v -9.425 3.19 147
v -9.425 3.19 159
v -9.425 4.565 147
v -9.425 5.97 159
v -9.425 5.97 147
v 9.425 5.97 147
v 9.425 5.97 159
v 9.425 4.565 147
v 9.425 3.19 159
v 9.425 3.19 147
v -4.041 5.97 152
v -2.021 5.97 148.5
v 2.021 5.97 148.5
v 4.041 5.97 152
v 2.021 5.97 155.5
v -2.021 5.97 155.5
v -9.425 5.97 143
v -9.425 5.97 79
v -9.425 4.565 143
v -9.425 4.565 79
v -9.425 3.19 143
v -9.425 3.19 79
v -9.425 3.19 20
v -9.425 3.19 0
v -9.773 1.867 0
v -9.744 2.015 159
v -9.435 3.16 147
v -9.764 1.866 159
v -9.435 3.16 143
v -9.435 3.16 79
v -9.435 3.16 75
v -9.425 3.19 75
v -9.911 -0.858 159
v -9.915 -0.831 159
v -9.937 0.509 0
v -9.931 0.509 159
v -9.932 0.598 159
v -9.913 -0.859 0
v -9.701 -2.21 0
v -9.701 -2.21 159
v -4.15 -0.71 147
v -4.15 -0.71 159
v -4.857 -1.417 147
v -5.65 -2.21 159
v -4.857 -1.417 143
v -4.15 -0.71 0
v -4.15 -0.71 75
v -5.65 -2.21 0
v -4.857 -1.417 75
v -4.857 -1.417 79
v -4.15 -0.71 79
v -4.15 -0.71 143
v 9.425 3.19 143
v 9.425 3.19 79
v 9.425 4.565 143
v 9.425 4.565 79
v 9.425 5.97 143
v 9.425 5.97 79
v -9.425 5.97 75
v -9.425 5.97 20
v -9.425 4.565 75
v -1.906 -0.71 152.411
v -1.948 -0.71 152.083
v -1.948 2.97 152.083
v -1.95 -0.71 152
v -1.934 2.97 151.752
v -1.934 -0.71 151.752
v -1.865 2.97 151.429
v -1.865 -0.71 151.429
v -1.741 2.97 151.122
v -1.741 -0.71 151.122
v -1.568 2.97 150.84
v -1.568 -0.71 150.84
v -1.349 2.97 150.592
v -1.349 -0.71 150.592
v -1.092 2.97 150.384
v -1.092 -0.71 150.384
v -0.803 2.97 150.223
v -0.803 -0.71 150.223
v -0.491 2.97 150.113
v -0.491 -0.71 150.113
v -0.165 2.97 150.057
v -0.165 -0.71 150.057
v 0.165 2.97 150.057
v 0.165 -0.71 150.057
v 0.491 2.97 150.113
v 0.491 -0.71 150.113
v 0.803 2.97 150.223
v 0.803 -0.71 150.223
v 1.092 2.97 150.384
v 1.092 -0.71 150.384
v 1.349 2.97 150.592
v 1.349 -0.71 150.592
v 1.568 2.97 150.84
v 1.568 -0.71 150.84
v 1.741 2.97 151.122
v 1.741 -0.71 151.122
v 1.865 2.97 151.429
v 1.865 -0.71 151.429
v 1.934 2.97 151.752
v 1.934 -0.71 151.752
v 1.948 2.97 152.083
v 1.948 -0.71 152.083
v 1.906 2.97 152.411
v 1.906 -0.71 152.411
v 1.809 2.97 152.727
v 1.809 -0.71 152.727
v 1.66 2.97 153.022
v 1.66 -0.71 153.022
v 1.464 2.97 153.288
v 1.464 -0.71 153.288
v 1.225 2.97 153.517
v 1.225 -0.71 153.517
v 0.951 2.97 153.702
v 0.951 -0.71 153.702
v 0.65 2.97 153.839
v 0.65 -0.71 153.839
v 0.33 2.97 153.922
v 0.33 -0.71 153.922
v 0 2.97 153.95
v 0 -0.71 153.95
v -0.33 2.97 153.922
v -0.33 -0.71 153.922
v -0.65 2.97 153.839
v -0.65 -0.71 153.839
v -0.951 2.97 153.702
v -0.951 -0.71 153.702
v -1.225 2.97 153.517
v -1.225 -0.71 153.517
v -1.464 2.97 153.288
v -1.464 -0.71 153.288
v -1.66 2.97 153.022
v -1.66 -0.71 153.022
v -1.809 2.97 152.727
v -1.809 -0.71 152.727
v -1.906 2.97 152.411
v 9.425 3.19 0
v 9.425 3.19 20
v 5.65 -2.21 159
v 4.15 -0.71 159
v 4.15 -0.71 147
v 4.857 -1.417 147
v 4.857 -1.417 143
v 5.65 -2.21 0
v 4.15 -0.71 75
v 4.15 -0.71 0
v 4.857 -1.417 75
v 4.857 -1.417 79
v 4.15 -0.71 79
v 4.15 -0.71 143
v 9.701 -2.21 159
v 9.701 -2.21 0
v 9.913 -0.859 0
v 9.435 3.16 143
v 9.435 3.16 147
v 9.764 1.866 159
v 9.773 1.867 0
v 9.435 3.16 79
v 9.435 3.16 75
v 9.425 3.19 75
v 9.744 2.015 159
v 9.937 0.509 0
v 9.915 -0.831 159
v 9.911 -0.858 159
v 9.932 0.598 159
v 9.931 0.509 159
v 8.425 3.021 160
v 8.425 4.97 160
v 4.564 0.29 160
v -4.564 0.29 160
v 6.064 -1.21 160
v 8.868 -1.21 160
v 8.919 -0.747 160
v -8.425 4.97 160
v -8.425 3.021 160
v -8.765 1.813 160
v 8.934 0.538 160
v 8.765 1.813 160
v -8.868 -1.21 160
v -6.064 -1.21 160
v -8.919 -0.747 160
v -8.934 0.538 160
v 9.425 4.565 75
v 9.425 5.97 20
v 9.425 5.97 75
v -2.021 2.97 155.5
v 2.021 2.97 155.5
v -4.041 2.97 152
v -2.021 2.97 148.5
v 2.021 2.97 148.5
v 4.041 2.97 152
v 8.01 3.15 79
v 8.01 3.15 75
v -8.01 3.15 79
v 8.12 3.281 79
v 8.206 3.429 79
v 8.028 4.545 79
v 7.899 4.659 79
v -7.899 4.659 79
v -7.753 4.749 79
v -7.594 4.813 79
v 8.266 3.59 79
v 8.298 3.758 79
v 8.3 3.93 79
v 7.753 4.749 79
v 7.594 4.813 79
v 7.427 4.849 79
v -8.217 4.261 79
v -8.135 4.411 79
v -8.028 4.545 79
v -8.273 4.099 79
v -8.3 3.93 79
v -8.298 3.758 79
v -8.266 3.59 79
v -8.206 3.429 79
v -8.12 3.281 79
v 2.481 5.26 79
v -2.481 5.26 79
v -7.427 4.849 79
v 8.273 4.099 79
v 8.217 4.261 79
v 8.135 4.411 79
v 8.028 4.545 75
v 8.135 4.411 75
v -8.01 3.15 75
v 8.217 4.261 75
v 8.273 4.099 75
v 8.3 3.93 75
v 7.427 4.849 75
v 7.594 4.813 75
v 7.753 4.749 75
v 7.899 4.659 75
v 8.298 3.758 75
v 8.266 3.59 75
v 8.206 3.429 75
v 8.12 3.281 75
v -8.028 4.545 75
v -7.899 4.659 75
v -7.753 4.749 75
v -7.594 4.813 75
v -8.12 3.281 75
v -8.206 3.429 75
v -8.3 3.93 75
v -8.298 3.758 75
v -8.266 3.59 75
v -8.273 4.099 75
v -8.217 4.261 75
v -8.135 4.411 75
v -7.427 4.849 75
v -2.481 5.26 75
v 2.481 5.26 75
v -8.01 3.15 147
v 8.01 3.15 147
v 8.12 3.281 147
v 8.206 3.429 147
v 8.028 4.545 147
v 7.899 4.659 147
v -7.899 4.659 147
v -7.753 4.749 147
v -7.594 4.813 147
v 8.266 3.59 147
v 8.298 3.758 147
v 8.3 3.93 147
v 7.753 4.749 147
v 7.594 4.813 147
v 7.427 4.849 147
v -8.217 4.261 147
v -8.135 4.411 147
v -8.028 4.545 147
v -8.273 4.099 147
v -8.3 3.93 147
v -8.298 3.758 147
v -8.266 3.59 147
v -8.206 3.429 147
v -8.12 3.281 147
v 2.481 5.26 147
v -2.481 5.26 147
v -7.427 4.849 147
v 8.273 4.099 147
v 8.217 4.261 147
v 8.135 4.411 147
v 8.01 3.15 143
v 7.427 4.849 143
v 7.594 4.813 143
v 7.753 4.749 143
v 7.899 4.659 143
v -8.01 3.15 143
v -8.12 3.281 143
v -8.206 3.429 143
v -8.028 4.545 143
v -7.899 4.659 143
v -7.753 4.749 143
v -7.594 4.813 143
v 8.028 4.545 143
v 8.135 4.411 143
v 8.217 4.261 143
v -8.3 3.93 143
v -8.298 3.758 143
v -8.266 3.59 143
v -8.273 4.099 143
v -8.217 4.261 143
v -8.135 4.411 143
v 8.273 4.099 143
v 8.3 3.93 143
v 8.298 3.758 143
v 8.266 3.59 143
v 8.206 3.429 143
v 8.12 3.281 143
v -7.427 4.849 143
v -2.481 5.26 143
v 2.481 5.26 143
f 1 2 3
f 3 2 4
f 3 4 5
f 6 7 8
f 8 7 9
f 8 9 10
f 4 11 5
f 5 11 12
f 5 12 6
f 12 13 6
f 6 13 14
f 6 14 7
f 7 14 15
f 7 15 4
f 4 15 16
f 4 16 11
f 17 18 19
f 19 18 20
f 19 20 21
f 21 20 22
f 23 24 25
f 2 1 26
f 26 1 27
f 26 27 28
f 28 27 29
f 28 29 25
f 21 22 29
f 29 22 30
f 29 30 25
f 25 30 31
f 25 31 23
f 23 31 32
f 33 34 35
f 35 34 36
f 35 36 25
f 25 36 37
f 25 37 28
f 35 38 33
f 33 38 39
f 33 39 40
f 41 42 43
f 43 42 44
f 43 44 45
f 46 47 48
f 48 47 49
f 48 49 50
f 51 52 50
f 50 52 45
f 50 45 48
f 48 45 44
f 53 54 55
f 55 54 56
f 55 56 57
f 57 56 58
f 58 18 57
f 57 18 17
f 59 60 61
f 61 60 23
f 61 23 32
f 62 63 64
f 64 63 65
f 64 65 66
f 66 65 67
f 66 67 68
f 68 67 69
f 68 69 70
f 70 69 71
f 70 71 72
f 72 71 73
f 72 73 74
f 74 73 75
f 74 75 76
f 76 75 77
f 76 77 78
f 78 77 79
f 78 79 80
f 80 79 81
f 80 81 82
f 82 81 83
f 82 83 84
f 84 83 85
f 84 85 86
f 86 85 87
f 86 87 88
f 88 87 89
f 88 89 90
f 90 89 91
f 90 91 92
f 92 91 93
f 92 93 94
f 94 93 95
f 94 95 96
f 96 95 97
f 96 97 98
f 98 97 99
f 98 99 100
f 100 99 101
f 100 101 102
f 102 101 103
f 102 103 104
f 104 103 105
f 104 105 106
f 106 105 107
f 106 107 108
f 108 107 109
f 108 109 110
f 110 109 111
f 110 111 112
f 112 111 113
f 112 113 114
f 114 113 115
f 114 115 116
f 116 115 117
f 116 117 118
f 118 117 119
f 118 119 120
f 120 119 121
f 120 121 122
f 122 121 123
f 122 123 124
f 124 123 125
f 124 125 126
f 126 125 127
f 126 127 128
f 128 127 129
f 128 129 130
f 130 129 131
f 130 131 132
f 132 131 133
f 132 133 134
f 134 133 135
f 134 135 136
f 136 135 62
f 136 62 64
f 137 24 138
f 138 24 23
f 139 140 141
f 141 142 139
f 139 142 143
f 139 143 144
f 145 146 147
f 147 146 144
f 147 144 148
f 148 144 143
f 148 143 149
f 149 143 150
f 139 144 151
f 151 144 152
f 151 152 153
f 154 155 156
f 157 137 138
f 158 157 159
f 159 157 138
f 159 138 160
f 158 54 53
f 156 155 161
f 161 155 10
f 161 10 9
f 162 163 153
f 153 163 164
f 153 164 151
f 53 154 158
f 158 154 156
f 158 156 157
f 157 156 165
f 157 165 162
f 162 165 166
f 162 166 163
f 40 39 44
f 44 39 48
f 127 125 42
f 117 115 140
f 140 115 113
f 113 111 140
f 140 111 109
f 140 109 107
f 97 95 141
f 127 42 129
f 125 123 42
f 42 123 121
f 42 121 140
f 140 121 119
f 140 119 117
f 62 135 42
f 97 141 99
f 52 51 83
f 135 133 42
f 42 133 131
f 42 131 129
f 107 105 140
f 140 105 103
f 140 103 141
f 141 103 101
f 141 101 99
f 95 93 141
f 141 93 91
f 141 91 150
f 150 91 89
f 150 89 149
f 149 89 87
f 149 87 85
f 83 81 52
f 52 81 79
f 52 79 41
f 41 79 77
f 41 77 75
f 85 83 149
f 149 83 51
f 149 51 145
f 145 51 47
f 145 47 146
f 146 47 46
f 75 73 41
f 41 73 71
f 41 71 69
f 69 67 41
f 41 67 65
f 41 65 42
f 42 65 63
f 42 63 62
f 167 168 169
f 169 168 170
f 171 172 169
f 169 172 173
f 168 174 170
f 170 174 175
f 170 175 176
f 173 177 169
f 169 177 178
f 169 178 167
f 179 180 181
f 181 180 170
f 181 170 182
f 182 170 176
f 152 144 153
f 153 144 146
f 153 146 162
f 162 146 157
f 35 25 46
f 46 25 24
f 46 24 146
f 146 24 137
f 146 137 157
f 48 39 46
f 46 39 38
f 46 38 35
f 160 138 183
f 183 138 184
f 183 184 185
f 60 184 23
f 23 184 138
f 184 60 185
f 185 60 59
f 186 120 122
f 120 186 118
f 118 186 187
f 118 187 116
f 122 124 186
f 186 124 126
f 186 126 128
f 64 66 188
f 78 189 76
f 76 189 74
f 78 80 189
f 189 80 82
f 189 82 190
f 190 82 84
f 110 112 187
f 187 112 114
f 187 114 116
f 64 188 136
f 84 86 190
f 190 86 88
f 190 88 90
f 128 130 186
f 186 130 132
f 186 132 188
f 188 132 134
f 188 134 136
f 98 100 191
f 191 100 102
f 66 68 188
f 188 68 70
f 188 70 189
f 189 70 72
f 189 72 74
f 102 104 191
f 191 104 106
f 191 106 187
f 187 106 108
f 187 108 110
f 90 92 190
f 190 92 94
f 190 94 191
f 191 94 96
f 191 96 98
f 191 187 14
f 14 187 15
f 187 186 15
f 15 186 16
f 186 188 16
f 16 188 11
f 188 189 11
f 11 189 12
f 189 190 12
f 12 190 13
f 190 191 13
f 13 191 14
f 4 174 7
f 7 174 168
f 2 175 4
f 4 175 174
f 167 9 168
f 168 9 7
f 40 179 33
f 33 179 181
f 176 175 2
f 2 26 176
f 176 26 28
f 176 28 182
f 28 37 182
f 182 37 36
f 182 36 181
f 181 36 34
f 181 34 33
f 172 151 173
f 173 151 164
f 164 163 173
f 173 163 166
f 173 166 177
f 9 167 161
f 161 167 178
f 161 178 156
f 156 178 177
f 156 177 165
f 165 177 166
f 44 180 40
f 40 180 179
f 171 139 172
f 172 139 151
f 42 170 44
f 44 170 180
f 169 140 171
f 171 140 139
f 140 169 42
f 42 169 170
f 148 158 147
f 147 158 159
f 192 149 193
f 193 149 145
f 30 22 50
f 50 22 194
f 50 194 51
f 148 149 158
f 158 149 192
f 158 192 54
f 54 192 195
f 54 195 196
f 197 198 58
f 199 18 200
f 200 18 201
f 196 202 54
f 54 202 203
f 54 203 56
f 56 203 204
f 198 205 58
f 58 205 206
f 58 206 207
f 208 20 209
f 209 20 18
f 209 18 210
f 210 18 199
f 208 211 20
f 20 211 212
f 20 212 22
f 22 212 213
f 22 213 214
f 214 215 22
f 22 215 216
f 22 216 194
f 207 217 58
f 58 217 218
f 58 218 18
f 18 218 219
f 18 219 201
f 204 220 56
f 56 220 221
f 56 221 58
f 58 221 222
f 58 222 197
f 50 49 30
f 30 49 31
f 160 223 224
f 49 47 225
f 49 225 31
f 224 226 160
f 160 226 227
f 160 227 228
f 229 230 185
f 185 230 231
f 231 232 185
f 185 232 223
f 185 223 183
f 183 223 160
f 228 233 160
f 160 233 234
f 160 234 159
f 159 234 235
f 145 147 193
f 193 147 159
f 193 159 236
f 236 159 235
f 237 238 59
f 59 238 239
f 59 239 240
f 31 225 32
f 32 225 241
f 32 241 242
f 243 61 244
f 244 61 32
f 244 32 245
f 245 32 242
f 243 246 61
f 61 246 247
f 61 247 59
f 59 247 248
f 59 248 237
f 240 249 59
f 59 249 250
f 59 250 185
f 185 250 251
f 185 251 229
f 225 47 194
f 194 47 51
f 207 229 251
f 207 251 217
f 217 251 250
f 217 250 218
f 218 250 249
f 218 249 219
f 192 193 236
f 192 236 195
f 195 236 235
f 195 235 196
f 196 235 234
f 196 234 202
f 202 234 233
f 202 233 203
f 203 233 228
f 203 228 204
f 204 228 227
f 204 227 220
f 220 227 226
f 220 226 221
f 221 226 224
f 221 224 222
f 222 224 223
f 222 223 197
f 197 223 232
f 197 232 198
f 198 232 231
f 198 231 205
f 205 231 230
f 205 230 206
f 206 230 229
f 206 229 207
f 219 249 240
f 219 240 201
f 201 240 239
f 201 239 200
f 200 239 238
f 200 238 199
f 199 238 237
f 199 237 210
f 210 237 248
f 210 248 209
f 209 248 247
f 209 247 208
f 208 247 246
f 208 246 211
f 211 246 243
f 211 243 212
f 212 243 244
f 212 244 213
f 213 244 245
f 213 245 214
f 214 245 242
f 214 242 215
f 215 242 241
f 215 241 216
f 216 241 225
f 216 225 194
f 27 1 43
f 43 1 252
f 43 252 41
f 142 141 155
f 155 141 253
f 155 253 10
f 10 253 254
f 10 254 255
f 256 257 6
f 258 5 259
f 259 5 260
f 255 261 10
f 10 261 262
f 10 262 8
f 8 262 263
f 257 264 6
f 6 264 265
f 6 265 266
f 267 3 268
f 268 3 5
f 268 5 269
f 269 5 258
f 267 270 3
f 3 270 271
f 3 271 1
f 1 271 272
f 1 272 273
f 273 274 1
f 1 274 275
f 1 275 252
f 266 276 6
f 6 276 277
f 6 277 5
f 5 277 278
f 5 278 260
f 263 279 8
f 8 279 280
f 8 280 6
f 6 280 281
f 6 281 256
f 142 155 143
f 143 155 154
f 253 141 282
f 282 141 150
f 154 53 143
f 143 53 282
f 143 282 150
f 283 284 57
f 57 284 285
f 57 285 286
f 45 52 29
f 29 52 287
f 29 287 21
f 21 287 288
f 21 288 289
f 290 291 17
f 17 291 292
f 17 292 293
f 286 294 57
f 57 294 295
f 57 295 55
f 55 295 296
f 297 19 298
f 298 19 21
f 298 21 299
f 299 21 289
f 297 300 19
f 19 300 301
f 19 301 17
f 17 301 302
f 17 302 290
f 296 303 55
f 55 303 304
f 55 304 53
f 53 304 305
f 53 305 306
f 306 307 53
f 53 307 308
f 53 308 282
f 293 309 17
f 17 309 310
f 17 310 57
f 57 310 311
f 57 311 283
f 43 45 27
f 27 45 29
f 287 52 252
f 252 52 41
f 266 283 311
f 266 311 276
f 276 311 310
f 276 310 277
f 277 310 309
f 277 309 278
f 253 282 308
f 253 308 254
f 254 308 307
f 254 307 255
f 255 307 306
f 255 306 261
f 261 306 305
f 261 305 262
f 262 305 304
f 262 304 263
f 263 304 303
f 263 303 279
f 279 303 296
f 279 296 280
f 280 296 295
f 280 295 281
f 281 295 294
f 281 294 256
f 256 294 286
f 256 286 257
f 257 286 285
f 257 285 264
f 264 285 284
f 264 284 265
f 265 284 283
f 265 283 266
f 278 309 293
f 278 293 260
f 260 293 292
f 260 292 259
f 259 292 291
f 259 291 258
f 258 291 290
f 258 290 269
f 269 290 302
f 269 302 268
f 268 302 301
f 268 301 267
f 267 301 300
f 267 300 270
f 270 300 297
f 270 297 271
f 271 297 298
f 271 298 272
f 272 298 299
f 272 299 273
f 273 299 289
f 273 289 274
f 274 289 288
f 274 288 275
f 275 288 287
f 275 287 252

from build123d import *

# Parameters (mm, degrees)
EXTRUDE_1_DEPTH                  = 160
SKETCH_4_W                       = 18.849551718
SKETCH_4_H                       = 140
EXTRUDE_2_DEPTH                  = 2.78
CUT_EXTRUDE_2_DEPTH              = 161.420208827
CUT_EXTRUDE_2_DEPTH_BACK         = 161.420208827
SKETCH_5_R                       = 1.95
CUT_EXTRUDE_3_DEPTH              = 3
CHAMFER_1_SIZE                   = 1
SKETCH_8_W                       = 4
SKETCH_8_H                       = 1
CUT_EXTRUDE_4_DEPTH              = 161.481311685
CUT_EXTRUDE_5_DEPTH              = 4
FILLET_1_R                       = 1
PATTERN_LINEAR_1_COUNT           = 2
PATTERN_LINEAR_1_PITCH           = 68
PATTERN_LINEAR_1_COPY_1_SKETCH_W = 4
PATTERN_LINEAR_1_COPY_1_SKETCH_H = 1
PATTERN_LINEAR_1_COPY_1_DEPTH    = 161.481311685
FILLET_1_OF_PATTERN_LINEAR_1_R   = 1


with BuildPart() as part:
    # 스케치1 → 보스-돌출1 (new body)
    with BuildSketch(Plane.XY):
        with BuildLine():
            Line((-9.424775859, 3.19), (9.424775859, 3.19))
            ThreePointArc((9.424775859, 3.19), (9.936964373, 0.509155237), (9.701463807, -2.21))
            Line((9.701463807, -2.21), (5.65, -2.21))
            Line((5.65, -2.21), (4.15, -0.71))
            Line((4.15, -0.71), (-4.15, -0.71))
            Line((-4.15, -0.71), (-5.65, -2.21))
            Line((-5.65, -2.21), (-9.701463807, -2.21))
            ThreePointArc((-9.701463807, -2.21), (-9.936964373, 0.509155237), (-9.424775859, 3.19))
        make_face()
    extrude(amount=EXTRUDE_1_DEPTH)

    # 스케치4 → 보스-돌출2 (add)
    with BuildSketch(Plane(origin=(0, 3.19, 0), x_dir=(1, 0, 0), z_dir=(0, 1, 0))):
        with Locations((0, -90)):
            Rectangle(SKETCH_4_W, SKETCH_4_H)
    extrude(amount=EXTRUDE_2_DEPTH)

    # 스케치5 → 컷-돌출2 (cut, two sides: drawn at the far end of the back side and taken through both)
    with BuildSketch(Plane(origin=(0, 0, 0), x_dir=(1, 0, 0), z_dir=(0, 1, 0)).offset(-CUT_EXTRUDE_2_DEPTH_BACK)):
        with Locations(Location((0, -152, 0), (0, 0, 180))):
            Circle(SKETCH_5_R)
    extrude(amount=CUT_EXTRUDE_2_DEPTH + CUT_EXTRUDE_2_DEPTH_BACK, mode=Mode.SUBTRACT)

    # 스케치6 → 컷-돌출3 (cut)
    with BuildSketch(Plane(origin=(0, 5.97, 0), x_dir=(1, 0, 0), z_dir=(0, 1, 0))):
        Polygon((4.041451884, -152), (2.020725942, -148.5), (-2.020725942, -148.5), (-4.041451884, -152), (-2.020725942, -155.5), (2.020725942, -155.5), align=None)
    extrude(amount=-CUT_EXTRUDE_3_DEPTH, mode=Mode.SUBTRACT)

    # 모따기1
    chamfer_1_edges = [part.edges().sort_by_distance(p)[0] for p in [
        (0, -0.71, 160),
        (-4.9, -1.46, 160),
        (-7.675731904, -2.21, 160),
        (-9.936964373, 0.509155237, 160),
        (-9.424775859, 4.58, 160),
        (0, 5.97, 160),
        (9.424775859, 4.58, 160),
        (9.936964373, 0.509155237, 160),
        (7.675731904, -2.21, 160),
        (4.9, -1.46, 160),
    ]]
    chamfer(chamfer_1_edges, length=CHAMFER_1_SIZE)

    # 스케치8 → 컷-돌출4 (cut, through all)
    with BuildSketch(Plane(origin=(1.72, 1.72, 0), x_dir=(0, 0, 1), z_dir=(-0.7071067811865488, -0.7071067811865464, 0))):
        with Locations((77, -3.936538957)):
            Rectangle(SKETCH_8_W, SKETCH_8_H)
    cut_extrude_4 = extrude(amount=-CUT_EXTRUDE_4_DEPTH, mode=Mode.SUBTRACT)

    # 대칭 복사1: 컷-돌출4 across plane
    add(cut_extrude_4.mirror(Plane(origin=(0, 0, 0), x_dir=(0, 0, 1), z_dir=(1, 0, 0))), mode=Mode.SUBTRACT)

    # 스케치9 → 컷-돌출5 (cut)
    with BuildSketch(Plane.XY.offset(75)):
        with BuildLine():
            Line((-9.424775859, 4.564775859), (-13.291839, 9.783941573))
            Line((-13.291839, 9.783941573), (12.328532893, 9.783941573))
            Line((12.328532893, 9.783941573), (9.424775859, 4.564775859))
            ThreePointArc((9.424775859, 4.564775859), (0, 5.311625169), (-9.424775859, 4.564775859))
        make_face()
    cut_extrude_5 = extrude(amount=CUT_EXTRUDE_5_DEPTH, mode=Mode.SUBTRACT)

    # 필렛1
    # the kernel refuses this fillet: 1 mm, written as the material it takes off along each edge
    with BuildSketch(Plane(origin=(9.424775859, 4.564775859, 79), x_dir=(-0.7071067811865487, -0.7071067811865465, 0), z_dir=(0, 0, -1))) as fillet_1_piece_1:
        with BuildLine():
            CenterArc((2.001337163, 1), FILLET_1_R, 142.129139592, 127.870860408)
            ThreePointArc((1.211940766, 1.613883807), (0.5991659, 0.812051708), (0, 0))
            Line((0, 0), (2.001337163, 0))
        make_face()
    extrude(amount=4, mode=Mode.SUBTRACT)
    with BuildSketch(Plane(origin=(-9.424775859, 4.564775859, 79), x_dir=(0.7071067811865489, -0.7071067811865462, 0), z_dir=(0, 0, -1))) as fillet_1_piece_2:
        with BuildLine():
            CenterArc((2.001337163, -1), FILLET_1_R, 90, 127.870860408)
            ThreePointArc((1.211940766, -1.613883807), (0.5991659, -0.812051708), (0, 0))
            Line((0, 0), (2.001337163, 0))
        make_face()
    extrude(amount=4, mode=Mode.SUBTRACT)

    # 선형 패턴1: 컷-돌출4, 컷-돌출5 ×2
    with Locations(*[(0, 0, i * PATTERN_LINEAR_1_PITCH) for i in range(1, PATTERN_LINEAR_1_COUNT)]):
        add(cut_extrude_4, mode=Mode.SUBTRACT)
        add(cut_extrude_5, mode=Mode.SUBTRACT)

    # 선형 패턴1 copy 1 sketch → 선형 패턴1 copy 1 (cut, through all)
    with BuildSketch(Plane(origin=(-1.72, 1.72, 68), x_dir=(0, 0, 1), z_dir=(0.7071067811865488, -0.7071067811865464, 0))):
        with Locations((77, 3.936538957)):
            Rectangle(PATTERN_LINEAR_1_COPY_1_SKETCH_W, PATTERN_LINEAR_1_COPY_1_SKETCH_H)
    extrude(amount=-PATTERN_LINEAR_1_COPY_1_DEPTH, mode=Mode.SUBTRACT)

    # 필렛1 of 선형 패턴1
    # the kernel refuses this fillet: 1 mm, written as the material it takes off along each edge
    with BuildSketch(Plane(origin=(9.424775859, 4.564775859, 147), x_dir=(-0.7071067811865485, -0.7071067811865467, 0), z_dir=(0, 0, -1)), Plane(origin=(-9.424775859, 4.564775859, 143), x_dir=(0.707106781186548, -0.7071067811865471, 0), z_dir=(0, 0, 1))) as fillet_1_of_pattern_linear_1_piece_1:
        with BuildLine():
            CenterArc((2.001337163, 1), FILLET_1_OF_PATTERN_LINEAR_1_R, 142.129139592, 127.870860408)
            ThreePointArc((1.211940766, 1.613883807), (0.5991659, 0.812051708), (0, 0))
            Line((0, 0), (2.001337163, 0))
        make_face()
    extrude(amount=4, mode=Mode.SUBTRACT)


solid = part.part
